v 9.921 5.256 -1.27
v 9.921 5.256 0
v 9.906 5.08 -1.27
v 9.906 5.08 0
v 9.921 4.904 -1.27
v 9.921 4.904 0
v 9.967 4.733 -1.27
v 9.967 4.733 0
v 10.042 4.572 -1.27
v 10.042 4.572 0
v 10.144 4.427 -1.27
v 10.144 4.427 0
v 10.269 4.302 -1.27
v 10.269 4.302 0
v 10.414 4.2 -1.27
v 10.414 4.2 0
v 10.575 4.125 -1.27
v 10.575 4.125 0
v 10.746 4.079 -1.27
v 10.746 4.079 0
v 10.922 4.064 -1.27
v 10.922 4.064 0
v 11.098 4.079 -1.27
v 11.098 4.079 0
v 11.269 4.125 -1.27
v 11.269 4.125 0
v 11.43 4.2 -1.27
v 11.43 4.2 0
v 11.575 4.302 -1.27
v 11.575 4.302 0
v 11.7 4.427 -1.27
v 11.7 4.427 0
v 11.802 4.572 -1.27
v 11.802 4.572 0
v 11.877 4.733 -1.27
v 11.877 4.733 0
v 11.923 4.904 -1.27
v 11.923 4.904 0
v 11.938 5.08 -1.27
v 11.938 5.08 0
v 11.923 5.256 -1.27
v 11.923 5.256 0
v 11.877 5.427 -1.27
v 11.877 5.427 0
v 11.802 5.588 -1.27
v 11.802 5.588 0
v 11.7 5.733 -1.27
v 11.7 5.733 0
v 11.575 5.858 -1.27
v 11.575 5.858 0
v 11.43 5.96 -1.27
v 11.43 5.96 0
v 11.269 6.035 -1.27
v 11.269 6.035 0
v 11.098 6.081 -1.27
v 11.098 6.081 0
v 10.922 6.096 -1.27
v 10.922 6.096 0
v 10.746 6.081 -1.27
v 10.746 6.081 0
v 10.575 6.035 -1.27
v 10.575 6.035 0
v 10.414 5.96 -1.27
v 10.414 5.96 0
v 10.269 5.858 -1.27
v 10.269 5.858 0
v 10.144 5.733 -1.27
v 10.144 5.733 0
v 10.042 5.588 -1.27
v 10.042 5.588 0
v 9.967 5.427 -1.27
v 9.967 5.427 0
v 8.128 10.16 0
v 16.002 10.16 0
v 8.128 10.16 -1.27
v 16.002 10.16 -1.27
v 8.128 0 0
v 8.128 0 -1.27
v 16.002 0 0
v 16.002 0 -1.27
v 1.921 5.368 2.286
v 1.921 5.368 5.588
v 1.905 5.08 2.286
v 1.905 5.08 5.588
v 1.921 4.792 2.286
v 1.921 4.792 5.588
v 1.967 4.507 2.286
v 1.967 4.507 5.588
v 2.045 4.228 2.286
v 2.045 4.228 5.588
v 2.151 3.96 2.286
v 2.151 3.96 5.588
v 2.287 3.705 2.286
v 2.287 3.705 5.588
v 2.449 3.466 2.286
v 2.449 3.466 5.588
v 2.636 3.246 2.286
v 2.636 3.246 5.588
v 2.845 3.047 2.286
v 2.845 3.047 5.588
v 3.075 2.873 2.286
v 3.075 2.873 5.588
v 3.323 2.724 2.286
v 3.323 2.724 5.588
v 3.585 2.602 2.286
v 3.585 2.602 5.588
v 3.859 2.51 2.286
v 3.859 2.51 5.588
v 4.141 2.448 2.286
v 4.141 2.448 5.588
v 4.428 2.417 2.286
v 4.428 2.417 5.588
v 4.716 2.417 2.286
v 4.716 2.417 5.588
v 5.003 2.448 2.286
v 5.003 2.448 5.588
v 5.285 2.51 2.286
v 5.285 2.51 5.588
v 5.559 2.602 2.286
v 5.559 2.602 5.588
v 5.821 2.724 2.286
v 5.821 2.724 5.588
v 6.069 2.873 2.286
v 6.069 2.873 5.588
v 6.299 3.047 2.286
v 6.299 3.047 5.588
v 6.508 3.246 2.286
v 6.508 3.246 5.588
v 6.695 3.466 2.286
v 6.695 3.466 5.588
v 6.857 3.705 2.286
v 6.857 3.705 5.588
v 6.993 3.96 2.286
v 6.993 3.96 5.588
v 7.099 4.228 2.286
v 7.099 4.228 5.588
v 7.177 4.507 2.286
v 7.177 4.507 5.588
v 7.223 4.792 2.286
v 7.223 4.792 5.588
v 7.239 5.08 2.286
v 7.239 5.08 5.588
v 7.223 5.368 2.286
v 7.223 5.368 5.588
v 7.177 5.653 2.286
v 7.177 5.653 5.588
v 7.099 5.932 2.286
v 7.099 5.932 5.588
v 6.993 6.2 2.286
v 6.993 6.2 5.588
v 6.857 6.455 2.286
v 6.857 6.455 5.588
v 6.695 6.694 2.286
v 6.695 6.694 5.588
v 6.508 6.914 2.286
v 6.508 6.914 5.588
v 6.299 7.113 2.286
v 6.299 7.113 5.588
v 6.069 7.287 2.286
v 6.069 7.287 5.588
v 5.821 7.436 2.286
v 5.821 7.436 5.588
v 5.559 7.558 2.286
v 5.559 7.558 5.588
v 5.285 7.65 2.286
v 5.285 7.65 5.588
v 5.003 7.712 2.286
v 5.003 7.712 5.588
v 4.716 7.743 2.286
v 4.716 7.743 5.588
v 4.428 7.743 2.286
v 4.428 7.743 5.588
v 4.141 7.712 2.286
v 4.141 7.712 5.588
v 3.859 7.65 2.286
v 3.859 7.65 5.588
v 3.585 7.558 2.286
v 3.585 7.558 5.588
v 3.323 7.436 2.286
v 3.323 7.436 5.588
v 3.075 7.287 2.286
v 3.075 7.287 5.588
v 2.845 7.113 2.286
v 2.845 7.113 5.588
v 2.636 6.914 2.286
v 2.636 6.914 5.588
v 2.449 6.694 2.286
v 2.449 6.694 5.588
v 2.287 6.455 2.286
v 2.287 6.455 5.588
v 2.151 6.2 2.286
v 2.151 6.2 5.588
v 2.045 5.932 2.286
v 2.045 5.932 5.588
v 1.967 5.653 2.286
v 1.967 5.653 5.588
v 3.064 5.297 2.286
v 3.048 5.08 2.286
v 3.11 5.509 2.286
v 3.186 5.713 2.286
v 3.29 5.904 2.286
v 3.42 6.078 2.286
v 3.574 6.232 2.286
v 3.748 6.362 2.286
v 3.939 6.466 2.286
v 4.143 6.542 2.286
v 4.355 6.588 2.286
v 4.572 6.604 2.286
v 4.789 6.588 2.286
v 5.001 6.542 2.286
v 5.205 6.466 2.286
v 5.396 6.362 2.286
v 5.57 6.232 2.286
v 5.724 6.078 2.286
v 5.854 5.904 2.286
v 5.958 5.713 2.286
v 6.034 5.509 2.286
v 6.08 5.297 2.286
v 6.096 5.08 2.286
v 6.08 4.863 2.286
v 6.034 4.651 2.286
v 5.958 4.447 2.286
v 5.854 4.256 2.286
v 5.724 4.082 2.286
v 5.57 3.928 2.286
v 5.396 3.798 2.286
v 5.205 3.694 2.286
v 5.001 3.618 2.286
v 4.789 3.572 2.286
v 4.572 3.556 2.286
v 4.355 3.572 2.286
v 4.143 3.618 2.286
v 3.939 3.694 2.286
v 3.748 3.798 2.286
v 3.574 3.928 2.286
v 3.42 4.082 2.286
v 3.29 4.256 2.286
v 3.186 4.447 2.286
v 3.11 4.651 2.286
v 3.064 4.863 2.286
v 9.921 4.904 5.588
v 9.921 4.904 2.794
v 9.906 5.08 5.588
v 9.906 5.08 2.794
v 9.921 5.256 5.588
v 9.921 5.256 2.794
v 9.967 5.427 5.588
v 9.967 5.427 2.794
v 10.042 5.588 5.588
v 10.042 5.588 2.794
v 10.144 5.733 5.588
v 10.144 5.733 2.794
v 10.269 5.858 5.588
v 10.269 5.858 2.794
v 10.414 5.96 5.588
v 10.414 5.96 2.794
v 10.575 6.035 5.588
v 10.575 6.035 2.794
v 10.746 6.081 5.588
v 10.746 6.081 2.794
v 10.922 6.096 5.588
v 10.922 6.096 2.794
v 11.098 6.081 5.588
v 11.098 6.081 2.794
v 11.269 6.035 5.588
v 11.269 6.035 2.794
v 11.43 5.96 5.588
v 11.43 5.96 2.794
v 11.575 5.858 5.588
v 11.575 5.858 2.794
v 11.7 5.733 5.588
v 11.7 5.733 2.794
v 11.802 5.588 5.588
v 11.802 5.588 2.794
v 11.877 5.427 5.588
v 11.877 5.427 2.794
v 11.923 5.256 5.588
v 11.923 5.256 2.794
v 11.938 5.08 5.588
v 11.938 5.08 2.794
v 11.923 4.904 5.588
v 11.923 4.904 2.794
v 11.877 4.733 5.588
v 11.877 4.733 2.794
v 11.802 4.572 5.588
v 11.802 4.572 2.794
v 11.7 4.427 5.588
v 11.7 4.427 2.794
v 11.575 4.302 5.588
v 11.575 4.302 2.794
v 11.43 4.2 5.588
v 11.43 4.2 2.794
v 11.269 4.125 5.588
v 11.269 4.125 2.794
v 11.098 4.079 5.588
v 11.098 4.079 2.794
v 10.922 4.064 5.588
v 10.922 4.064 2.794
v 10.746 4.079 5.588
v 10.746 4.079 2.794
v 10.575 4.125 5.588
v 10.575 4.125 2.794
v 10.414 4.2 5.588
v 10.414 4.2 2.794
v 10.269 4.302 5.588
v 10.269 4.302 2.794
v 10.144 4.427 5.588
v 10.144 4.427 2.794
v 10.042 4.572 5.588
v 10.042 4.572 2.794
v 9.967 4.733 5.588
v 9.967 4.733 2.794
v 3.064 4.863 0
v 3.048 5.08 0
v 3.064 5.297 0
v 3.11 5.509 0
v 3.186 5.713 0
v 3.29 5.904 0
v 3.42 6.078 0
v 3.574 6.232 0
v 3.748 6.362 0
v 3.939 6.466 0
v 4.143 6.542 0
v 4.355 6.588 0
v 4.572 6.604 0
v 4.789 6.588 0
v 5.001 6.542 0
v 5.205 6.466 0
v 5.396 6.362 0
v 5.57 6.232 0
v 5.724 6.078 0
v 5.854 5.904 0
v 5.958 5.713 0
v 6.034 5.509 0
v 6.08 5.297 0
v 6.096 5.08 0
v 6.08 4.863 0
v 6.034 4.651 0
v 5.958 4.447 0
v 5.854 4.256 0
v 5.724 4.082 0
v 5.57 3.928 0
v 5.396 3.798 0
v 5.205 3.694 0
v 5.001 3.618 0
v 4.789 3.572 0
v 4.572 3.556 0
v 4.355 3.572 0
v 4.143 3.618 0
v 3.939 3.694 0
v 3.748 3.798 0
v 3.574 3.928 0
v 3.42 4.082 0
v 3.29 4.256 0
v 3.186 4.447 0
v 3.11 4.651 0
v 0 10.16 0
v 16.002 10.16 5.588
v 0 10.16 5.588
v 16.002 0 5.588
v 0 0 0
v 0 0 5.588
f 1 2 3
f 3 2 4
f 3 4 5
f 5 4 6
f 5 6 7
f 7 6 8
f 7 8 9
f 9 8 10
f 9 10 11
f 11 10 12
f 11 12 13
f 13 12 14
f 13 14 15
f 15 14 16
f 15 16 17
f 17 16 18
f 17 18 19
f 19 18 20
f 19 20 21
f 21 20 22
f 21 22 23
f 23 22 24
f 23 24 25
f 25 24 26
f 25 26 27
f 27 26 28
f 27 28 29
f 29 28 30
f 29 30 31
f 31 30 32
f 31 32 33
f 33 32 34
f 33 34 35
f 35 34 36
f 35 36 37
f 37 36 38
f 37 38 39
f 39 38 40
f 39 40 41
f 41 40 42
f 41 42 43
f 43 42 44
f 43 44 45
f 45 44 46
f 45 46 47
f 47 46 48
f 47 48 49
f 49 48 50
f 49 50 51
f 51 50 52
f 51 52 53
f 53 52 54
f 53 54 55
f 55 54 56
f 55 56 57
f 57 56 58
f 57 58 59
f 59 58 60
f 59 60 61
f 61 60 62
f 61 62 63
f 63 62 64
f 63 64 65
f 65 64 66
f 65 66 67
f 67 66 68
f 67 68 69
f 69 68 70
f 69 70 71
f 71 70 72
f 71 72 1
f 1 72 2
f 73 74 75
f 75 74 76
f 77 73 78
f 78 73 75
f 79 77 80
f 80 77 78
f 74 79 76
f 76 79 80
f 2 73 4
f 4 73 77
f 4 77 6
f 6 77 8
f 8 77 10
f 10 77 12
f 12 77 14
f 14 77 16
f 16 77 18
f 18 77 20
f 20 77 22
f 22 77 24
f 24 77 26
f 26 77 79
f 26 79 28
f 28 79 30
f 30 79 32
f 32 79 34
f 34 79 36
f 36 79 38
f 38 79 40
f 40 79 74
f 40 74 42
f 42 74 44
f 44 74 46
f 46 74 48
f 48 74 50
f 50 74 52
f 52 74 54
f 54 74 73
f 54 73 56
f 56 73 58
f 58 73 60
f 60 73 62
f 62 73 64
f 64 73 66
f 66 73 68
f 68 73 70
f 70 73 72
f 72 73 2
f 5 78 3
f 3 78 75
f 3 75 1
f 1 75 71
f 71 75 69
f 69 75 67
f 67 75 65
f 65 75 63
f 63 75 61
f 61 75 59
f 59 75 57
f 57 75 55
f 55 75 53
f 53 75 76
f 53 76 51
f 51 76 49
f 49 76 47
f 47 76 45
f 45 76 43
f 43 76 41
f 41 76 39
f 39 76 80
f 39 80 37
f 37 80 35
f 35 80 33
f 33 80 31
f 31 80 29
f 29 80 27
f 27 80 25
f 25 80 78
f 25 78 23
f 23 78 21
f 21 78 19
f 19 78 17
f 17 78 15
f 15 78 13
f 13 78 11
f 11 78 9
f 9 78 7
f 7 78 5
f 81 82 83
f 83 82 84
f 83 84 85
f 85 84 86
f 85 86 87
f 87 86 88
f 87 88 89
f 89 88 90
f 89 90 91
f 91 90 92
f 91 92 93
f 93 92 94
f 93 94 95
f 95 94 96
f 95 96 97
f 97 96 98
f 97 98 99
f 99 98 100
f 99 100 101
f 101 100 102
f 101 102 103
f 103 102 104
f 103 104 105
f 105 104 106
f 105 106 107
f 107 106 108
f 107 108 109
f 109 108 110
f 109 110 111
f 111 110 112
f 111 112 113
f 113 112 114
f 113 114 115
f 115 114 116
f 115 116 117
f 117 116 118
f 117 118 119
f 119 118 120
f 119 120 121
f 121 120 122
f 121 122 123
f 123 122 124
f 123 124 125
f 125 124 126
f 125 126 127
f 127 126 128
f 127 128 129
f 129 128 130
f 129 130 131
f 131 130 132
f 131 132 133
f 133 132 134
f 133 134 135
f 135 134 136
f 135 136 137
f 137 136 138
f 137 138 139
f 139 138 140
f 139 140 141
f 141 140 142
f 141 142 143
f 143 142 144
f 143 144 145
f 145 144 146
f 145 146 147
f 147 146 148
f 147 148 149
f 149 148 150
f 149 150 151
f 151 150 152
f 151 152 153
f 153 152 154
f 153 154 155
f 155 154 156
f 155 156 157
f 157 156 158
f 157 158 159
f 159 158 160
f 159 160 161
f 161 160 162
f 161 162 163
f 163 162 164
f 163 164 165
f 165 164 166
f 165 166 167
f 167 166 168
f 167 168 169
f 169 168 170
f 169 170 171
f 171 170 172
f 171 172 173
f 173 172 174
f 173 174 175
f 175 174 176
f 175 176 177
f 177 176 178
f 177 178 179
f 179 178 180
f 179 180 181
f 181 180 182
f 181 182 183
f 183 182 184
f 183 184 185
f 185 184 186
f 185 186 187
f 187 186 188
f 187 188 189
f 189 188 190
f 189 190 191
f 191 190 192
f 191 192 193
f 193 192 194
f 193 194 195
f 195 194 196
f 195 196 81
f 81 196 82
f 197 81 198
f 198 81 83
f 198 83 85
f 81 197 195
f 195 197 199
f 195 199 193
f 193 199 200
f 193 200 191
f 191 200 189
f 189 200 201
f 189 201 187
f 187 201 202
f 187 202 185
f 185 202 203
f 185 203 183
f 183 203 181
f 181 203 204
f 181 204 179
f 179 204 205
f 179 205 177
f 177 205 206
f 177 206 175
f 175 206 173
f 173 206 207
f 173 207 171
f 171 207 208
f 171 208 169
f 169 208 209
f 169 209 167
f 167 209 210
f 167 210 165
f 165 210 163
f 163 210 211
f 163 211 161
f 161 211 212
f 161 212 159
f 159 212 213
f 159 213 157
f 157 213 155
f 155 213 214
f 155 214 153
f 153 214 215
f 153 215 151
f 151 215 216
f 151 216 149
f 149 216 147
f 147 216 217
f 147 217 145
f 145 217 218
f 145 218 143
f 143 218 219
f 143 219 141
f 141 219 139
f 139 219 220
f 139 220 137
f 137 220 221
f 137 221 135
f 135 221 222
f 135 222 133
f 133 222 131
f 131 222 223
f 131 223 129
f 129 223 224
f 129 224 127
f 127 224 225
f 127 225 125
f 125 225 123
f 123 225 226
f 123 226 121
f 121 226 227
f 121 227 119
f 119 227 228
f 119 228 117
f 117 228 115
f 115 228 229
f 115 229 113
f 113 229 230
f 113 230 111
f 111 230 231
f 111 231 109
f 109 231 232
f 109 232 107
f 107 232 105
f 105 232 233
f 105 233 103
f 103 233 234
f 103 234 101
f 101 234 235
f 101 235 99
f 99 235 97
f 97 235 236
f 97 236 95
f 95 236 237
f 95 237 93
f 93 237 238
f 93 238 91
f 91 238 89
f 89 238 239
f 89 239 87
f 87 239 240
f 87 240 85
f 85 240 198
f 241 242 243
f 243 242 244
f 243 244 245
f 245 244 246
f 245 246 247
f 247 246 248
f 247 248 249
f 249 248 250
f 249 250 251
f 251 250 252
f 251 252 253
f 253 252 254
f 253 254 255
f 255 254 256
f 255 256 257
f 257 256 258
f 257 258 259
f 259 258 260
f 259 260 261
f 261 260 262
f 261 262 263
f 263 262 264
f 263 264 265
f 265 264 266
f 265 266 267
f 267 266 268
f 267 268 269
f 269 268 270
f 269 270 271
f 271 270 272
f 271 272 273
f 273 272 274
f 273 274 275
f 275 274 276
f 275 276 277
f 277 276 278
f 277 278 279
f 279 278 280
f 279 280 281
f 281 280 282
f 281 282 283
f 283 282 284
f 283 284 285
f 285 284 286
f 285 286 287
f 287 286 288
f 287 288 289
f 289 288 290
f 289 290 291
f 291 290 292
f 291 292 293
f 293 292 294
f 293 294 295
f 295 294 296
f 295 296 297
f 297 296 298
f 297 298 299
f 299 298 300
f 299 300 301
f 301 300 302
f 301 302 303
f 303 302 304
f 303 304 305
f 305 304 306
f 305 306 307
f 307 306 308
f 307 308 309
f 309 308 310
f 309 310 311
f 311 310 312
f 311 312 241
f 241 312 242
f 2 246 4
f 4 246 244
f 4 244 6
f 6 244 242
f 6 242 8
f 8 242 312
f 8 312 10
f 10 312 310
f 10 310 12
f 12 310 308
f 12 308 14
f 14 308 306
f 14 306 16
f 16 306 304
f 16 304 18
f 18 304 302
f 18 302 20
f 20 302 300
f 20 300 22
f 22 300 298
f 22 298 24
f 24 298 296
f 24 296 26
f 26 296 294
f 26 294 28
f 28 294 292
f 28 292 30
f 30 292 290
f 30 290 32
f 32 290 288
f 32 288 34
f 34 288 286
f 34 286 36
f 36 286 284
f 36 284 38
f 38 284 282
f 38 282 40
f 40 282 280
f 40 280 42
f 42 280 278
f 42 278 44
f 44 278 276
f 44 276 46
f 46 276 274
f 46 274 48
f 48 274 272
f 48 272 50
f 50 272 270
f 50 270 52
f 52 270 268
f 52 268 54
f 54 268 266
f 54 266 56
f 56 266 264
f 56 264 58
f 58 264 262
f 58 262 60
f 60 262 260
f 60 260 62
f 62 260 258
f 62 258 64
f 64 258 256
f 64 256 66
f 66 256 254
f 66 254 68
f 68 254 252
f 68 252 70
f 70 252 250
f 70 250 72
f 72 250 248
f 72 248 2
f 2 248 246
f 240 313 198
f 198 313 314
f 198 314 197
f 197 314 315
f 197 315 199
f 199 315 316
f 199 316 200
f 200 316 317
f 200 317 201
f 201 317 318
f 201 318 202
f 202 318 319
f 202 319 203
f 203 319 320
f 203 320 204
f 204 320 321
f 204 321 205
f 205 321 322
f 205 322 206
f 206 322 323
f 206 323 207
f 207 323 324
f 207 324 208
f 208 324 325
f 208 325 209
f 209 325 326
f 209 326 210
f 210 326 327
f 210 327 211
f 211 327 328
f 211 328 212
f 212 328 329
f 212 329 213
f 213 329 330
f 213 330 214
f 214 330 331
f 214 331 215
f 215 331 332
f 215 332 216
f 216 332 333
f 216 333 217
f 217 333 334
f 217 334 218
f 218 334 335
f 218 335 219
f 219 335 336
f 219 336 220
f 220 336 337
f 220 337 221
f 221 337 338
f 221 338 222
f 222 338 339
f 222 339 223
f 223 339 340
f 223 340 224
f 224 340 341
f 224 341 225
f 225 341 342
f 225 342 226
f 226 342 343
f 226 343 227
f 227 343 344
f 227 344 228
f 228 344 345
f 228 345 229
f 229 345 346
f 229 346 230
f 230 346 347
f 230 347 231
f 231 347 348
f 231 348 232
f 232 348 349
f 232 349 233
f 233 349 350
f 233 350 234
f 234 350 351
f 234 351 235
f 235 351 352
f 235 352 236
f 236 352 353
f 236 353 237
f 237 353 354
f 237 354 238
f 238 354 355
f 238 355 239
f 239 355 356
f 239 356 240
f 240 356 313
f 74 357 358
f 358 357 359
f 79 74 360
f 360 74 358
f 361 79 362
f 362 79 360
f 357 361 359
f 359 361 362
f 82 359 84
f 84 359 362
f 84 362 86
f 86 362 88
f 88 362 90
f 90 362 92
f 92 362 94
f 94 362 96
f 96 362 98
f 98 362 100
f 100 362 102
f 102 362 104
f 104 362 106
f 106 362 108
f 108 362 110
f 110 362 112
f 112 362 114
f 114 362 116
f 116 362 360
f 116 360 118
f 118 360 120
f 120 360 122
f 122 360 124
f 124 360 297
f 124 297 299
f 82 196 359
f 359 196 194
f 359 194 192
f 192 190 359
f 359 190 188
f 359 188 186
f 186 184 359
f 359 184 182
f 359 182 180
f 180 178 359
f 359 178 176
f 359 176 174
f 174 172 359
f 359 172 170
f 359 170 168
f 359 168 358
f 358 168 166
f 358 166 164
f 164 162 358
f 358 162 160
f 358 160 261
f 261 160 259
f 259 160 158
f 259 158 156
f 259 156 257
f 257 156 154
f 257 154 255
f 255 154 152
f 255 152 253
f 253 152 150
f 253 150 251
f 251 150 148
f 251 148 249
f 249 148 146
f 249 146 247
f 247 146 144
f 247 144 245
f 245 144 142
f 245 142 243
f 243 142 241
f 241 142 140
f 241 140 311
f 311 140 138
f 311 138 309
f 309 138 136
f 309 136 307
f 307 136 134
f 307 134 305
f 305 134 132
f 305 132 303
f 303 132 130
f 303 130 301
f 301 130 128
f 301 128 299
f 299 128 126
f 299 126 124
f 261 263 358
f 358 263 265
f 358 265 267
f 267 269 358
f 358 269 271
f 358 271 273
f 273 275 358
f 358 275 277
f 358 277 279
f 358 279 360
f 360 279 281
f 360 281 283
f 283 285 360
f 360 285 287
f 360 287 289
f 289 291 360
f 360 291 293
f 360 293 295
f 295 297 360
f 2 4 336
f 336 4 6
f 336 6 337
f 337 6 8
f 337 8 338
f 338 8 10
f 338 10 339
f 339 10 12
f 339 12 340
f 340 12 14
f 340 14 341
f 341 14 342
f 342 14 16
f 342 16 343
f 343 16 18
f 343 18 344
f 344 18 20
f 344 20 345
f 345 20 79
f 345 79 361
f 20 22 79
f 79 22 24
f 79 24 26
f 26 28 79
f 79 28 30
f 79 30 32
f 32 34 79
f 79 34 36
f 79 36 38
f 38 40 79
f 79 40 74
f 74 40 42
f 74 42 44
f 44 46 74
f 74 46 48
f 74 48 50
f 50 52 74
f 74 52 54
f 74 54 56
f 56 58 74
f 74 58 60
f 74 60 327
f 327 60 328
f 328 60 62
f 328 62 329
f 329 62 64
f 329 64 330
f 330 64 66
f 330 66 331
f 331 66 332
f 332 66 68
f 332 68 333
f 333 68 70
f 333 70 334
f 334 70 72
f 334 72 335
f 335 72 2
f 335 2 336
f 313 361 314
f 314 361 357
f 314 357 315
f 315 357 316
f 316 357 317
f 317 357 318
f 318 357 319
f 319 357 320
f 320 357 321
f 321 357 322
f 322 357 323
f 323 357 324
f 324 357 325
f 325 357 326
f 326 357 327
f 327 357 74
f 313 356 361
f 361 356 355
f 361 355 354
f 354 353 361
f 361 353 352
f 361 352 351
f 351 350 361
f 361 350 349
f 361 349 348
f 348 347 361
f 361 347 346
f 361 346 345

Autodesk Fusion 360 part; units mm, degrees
sketch "Sketch1" plane through (0, 0, 0) normal (0, 0, 1) x (1, 0, 0)
  line L0 (0, 0) -> (16.002, 0)
  line L1 (16.002, 0) -> (16.002, 10.16)
  line L2 (16.002, 10.16) -> (0, 10.16)
  line L3 (0, 10.16) -> (0, 0)
  circle A0 centre (10.922, 5.08) radius 1.016
  circle A1 centre (4.572, 5.08) radius 1.524
  line L4 (16.002, 10.16) -> (8.128, 10.16)
  line L5 (8.128, 10.16) -> (8.128, 0)
  line L6 (8.128, 0) -> (16.002, 0)
  line L7 (16.002, 0) -> (16.002, 10.16)
  dimension "d1" = 16.002
  dimension "d2" = 10.16
  dimension "d3" = 2.032
  dimension "d4" = 3.048
  dimension "d5" = 5.08
  dimension "d6" = 5.08
  dimension "d7" = 4.572
  dimension "d8" = 6.35
  dimension "d21" = 7.874
extrude "Extrude6" add sketch "Sketch1" against normal blind 1.27 contours L0 L1 L2 L4 L5 L6 L7 makes body 1
extrude "Extrude1" add sketch "Sketch1" along normal blind 5.588 separate body makes body 2
extrude "Extrude2" add sketch "Sketch1" along normal blind 5.588 contours A0 bodies 2
extrude "Extrude3" cut sketch "Sketch1" along normal blind 5.588 contours A0 bodies 2
sketch "Sketch2" plane through (0, 0, 5.588) normal (0, 0, 1) x (1, 0, 0)
  circle A0 centre (4.572, 5.08) radius 1.524
  line L0 (0, 10.16) -> (0, 0)
  line L1 (0, 0) -> (16.002, 0)
  line L2 (16.002, 0) -> (16.002, 10.16)
  line L3 (16.002, 10.16) -> (0, 10.16)
  circle A1 centre (4.572, 5.08) radius 2.667
  line L4 (0, 10.16) -> (8.89, 10.16)
  line L5 (8.89, 10.16) -> (8.89, 0)
  line L6 (8.89, 0) -> (0, 0)
  line L7 (0, 0) -> (0, 10.16)
  circle A2 centre (10.922, 5.08) radius 1.016
  dimension "d15" = 5.334
  dimension "d18" = 8.89
extrude "Extrude4" cut sketch "Sketch2" against normal blind 3.302 contours A1 bodies 2
